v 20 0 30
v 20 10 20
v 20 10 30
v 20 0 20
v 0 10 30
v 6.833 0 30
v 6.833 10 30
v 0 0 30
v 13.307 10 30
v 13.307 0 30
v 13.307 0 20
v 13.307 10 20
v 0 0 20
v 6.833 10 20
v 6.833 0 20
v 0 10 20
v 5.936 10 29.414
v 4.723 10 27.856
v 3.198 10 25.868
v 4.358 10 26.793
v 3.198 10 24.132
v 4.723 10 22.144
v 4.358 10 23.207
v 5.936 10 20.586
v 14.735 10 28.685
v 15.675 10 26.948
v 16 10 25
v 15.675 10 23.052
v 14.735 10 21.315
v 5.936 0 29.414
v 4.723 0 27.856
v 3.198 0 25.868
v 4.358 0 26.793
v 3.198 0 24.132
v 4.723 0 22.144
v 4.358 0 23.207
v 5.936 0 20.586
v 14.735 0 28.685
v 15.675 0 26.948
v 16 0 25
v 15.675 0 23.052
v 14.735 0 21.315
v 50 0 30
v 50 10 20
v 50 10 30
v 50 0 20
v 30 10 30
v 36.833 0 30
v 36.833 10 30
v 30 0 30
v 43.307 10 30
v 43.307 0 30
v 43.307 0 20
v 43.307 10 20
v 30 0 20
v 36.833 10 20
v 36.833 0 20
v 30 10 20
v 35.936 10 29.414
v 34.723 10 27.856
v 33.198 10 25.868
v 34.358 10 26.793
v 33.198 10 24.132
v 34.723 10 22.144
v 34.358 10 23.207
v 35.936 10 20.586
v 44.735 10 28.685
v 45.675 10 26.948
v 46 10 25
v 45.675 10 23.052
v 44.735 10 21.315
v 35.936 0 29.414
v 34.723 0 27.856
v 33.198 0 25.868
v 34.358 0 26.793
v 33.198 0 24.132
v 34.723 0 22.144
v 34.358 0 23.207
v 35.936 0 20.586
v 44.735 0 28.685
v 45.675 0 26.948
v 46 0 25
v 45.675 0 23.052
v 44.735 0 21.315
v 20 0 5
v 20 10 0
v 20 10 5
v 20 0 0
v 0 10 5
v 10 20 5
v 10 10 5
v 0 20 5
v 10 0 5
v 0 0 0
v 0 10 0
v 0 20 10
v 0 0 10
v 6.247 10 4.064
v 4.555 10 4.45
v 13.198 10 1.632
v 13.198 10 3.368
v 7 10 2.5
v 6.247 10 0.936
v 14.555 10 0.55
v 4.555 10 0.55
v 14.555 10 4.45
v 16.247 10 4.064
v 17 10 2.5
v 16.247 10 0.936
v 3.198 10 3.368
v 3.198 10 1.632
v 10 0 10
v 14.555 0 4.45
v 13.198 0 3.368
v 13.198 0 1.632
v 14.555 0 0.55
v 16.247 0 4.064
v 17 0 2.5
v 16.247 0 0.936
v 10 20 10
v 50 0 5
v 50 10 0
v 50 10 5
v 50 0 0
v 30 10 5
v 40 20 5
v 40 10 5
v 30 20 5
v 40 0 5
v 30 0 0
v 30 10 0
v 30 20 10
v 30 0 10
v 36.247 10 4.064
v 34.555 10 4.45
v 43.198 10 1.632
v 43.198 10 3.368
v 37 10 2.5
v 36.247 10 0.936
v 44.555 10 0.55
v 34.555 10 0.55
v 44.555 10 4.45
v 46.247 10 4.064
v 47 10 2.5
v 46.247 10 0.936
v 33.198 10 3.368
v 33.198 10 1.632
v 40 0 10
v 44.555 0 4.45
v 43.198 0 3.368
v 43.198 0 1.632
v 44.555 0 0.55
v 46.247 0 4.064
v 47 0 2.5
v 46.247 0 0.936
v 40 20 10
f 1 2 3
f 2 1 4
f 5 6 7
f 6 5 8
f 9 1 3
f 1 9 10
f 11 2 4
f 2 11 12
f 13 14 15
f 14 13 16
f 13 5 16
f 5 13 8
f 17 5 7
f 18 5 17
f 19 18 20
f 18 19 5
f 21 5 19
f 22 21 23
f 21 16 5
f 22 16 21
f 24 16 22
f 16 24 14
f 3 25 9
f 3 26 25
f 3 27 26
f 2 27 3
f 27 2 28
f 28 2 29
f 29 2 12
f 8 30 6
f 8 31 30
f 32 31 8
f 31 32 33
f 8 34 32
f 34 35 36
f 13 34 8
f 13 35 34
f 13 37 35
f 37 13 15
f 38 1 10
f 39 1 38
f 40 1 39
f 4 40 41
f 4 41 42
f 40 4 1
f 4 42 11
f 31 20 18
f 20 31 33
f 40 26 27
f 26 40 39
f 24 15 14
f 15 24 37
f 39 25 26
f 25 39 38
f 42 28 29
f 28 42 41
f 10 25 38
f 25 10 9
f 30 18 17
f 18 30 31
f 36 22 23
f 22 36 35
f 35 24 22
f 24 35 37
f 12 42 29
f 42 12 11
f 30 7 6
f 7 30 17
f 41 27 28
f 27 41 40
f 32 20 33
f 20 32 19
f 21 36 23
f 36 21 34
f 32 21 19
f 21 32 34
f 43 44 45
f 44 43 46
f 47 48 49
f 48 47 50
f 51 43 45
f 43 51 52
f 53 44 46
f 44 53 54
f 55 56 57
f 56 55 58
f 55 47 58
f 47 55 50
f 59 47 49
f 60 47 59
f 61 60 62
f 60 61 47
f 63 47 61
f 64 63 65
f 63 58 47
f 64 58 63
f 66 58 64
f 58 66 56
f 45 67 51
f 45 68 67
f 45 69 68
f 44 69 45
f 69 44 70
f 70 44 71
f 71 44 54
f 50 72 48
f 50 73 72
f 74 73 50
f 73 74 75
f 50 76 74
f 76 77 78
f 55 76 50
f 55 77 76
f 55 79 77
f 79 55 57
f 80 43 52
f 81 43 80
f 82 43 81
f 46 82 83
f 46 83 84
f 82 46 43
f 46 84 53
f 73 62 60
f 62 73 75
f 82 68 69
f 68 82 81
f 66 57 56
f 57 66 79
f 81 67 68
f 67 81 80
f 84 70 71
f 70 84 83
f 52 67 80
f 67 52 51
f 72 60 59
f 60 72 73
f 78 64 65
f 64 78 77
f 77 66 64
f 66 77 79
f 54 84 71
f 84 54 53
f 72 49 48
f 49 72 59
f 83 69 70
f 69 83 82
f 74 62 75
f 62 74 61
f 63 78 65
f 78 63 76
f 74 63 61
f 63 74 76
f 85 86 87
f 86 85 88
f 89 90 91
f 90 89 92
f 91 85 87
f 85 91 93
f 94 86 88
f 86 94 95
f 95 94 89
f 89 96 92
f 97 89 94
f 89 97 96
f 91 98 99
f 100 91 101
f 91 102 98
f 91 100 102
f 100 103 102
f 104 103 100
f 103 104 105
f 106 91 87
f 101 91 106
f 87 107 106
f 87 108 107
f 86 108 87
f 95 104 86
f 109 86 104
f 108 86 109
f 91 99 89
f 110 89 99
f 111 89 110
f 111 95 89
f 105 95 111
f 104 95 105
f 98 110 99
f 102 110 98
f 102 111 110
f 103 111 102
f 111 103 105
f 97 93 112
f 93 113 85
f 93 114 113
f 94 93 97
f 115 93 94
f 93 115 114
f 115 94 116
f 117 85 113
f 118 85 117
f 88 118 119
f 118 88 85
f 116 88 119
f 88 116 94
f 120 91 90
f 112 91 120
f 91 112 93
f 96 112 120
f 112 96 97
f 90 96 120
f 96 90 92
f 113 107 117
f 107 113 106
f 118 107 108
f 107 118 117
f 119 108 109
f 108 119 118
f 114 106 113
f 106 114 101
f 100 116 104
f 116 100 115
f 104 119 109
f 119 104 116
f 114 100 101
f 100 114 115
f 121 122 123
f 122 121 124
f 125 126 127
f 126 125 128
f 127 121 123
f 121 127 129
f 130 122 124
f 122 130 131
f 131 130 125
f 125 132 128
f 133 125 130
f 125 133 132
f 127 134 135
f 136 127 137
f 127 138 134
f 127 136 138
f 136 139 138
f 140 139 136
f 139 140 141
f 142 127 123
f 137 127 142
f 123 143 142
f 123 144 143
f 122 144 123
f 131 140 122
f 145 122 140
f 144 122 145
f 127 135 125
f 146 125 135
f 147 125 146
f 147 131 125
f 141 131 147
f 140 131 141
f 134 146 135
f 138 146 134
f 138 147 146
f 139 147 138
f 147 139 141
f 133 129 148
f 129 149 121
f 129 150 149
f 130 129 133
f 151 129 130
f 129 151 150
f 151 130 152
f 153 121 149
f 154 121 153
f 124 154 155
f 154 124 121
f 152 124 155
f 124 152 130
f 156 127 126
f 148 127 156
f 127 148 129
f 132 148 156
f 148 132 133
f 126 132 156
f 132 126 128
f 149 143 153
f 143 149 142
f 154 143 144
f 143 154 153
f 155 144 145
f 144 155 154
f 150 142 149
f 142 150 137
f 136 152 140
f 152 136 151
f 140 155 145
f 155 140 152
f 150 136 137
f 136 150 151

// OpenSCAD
// Function to create an L-shaped bracket
module l_shaped_bracket() {
    difference() {
        union() {
            // Two rectangular arms forming the L-shape
            cube([20, 10, 5], center = false); // Horizontal arm
            translate([0, 0, 5])
                cube([10, 20, 5], center = false); // Vertical arm
        }
        // Circular holes in each arm (adjusted positions for alignment)
        translate([15, 5, 2.5]) // Adjusted position for horizontal arm hole
            rotate([90, 0, 0])
                cylinder(r = 2, h = 10, center = true);
        translate([5, 15, 2.5]) // Adjusted position for vertical arm hole
            rotate([90, 0, 0])
                cylinder(r = 2, h = 10, center = true);
        // Triangular cutout at the inner corner (resized and refined)
        translate([0, 0, 5])
            polyhedron(
                points = [[0, 0, 0], [10, 0, 0], [0, 10, 0], [0, 0, 3]], // Adjusted depth for refinement
                faces = [[0, 1, 2], [0, 1, 3], [0, 2, 3], [1, 2, 3]]
            );
    }
}

// Function to create a C-shaped clamp
module c_shaped_clamp() {
    difference() {
        // Rectangular body
        cube([20, 10, 10], center = false);
        // Circular cutout in the center (resized for proper dimensions)
        translate([10, 5, 5])
            rotate([90, 0, 0])
                cylinder(r = 6, h = 20, center = true); // Adjusted radius for proper size
        // Circular hole for fastening (repositioned for symmetry)
        translate([5, 5, 5])
            rotate([90, 0, 0])
                cylinder(r = 2, h = 10, center = true);
    }
}

// Assembly of the model
module assembly() {
    // Layer 1: Two C-shaped clamps
    translate([0, 0, 20])
        c_shaped_clamp();
    translate([30, 0, 20])
        c_shaped_clamp();

    // Layer 2: Two L-shaped brackets
    translate([0, 0, 0])
        l_shaped_bracket();
    translate([30, 0, 0])
        l_shaped_bracket();
}

// Render the assembly
assembly();
